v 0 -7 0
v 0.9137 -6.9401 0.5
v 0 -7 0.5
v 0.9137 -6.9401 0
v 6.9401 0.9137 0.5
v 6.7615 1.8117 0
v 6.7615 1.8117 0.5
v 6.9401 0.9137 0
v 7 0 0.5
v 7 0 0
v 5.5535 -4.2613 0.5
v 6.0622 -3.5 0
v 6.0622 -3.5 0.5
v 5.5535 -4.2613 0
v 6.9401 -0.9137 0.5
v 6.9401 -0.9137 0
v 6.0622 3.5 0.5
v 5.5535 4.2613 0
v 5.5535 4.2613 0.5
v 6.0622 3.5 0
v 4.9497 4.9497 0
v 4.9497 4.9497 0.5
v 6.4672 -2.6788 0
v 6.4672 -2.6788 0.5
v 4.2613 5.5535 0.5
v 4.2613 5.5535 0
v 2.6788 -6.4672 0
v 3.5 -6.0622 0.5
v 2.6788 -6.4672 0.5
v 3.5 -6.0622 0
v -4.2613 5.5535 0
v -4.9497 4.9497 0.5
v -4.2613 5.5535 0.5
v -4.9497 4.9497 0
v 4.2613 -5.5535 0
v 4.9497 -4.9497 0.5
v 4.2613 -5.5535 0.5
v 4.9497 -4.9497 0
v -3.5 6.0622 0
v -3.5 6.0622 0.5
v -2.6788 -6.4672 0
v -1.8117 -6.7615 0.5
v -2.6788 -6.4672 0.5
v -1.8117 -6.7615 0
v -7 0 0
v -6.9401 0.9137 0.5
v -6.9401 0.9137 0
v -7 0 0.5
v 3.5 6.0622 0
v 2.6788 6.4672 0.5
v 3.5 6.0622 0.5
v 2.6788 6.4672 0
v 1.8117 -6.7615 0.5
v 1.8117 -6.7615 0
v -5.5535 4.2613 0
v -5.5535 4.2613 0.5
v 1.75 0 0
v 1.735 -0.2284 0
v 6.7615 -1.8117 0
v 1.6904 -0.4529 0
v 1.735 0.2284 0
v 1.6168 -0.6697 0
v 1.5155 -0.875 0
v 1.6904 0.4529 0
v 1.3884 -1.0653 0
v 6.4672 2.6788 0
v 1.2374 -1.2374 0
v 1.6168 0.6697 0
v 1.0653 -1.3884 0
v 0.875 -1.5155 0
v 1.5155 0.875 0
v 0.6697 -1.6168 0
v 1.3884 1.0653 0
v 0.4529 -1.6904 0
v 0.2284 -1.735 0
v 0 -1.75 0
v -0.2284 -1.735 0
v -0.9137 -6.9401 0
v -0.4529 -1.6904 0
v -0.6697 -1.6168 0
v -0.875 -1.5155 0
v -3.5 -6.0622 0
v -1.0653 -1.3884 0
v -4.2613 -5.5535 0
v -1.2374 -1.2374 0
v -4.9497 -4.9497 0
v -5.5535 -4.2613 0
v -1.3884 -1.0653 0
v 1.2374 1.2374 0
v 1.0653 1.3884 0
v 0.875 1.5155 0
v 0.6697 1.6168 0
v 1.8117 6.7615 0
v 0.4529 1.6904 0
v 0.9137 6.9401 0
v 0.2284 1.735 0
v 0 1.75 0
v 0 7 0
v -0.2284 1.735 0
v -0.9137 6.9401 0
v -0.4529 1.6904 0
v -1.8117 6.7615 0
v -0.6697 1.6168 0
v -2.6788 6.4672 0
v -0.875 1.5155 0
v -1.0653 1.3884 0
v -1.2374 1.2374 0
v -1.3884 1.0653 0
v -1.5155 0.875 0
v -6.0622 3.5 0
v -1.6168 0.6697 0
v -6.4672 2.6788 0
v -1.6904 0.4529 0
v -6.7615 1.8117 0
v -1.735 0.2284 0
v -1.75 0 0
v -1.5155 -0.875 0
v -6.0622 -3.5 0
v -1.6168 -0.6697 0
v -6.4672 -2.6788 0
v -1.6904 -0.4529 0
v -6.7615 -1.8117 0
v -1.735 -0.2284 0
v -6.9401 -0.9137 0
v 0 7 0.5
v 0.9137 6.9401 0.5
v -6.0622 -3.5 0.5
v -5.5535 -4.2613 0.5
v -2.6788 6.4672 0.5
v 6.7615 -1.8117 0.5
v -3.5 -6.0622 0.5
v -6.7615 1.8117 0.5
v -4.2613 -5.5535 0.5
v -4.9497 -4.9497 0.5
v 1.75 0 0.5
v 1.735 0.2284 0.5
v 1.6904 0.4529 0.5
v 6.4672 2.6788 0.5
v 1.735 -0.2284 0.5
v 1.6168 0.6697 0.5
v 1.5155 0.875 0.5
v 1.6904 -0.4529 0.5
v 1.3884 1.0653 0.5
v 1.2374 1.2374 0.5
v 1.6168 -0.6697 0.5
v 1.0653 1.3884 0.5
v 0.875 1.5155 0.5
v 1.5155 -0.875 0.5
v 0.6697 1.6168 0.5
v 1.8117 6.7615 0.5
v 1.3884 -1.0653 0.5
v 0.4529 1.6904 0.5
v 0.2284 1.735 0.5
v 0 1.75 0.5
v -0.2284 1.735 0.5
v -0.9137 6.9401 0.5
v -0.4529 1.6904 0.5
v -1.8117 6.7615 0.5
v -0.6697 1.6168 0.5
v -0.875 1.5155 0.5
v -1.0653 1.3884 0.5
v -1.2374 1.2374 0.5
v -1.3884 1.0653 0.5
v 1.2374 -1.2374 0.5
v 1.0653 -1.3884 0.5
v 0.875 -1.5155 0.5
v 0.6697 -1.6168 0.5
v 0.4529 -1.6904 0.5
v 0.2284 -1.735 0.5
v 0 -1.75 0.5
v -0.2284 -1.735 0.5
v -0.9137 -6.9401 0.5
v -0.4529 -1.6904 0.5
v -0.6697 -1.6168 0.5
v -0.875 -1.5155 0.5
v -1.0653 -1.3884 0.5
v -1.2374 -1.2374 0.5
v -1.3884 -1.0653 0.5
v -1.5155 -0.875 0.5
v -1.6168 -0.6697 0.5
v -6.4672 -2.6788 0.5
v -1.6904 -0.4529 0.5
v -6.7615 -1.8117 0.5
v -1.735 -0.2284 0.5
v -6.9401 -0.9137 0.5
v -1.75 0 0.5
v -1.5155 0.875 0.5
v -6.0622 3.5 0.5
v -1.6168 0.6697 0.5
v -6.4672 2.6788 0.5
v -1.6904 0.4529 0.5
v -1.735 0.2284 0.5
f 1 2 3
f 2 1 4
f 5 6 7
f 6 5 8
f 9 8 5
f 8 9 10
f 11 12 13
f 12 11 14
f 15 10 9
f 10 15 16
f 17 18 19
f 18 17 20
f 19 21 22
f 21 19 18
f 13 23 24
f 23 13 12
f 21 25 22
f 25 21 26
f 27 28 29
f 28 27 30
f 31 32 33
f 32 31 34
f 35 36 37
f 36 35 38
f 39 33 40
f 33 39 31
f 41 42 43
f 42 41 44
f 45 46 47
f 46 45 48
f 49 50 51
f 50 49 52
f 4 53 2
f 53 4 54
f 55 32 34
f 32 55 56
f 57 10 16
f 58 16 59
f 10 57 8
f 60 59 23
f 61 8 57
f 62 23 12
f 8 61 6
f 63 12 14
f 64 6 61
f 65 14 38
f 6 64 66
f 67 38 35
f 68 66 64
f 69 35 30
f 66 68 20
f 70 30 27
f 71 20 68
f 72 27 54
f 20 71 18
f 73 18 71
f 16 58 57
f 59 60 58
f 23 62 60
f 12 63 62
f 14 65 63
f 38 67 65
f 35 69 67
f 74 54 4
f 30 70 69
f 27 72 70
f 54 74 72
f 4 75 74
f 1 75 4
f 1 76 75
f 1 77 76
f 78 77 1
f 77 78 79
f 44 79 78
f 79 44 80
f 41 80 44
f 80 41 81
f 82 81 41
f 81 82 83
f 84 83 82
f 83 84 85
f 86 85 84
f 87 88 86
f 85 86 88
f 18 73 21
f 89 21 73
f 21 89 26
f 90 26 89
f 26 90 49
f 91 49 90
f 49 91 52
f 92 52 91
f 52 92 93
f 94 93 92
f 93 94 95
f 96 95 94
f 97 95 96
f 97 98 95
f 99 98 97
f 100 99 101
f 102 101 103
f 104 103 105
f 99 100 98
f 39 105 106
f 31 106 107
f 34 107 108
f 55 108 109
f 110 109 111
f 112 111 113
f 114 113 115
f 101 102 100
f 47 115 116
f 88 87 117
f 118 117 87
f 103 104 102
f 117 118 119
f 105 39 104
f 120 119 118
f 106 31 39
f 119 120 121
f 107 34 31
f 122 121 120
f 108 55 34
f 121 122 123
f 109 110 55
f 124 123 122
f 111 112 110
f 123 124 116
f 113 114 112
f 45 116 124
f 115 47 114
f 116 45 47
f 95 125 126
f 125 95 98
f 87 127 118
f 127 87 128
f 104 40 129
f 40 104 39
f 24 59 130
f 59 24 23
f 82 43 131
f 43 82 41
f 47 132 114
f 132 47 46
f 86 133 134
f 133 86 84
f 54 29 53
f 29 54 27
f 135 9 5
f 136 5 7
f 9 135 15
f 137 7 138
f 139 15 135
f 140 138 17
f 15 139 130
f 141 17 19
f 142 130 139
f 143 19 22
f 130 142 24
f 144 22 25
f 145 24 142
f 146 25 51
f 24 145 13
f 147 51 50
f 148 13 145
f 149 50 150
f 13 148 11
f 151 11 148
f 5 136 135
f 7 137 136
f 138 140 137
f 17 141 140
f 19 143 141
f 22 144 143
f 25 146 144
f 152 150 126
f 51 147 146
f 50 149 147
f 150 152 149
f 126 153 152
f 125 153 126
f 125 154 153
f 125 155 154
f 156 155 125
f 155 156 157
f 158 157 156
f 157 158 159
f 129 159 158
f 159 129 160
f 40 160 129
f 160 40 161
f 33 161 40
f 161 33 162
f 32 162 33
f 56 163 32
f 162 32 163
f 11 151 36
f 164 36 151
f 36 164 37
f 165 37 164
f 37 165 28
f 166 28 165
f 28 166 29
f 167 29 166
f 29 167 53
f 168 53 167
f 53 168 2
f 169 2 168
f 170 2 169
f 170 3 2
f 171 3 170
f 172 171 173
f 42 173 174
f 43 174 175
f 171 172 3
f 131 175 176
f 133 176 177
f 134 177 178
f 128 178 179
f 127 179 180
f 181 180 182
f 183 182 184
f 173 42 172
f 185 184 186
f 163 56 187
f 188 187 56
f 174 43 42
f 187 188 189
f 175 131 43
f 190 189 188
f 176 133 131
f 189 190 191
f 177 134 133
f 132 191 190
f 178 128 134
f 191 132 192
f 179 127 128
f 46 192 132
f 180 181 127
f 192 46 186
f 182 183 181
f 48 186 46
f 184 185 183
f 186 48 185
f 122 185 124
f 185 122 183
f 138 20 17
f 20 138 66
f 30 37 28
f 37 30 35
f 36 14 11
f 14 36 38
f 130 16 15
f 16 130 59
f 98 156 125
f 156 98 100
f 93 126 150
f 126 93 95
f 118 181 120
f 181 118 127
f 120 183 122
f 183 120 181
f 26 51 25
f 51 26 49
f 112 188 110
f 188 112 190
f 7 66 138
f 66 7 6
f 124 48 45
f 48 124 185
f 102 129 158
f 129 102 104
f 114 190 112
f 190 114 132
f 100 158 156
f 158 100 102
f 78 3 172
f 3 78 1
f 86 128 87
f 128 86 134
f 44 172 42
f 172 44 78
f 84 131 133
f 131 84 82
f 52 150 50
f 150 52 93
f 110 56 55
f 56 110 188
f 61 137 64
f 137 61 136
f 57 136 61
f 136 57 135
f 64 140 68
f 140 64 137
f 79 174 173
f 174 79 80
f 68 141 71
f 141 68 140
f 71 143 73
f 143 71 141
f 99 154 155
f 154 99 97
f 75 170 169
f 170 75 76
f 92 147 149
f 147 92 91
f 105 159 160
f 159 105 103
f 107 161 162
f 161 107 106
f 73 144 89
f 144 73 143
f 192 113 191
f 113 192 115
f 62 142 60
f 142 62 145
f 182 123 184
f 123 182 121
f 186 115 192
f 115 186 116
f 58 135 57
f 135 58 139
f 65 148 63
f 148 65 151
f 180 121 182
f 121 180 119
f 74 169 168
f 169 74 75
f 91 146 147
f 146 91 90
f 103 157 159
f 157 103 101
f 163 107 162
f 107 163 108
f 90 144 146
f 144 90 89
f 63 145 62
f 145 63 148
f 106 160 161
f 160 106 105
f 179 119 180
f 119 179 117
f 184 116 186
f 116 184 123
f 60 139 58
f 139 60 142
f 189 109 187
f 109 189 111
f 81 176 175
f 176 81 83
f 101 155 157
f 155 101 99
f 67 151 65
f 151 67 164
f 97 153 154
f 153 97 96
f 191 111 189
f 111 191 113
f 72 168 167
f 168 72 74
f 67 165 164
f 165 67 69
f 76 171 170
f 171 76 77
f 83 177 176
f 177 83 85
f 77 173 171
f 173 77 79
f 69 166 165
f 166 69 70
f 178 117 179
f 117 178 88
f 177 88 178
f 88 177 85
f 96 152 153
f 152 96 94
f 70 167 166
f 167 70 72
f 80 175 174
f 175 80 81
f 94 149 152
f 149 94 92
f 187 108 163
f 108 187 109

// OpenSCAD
// Gen-DI — assembly gap shim, h = run_clear (rotor face -> flange); copper is inside the flanges
include <parameters.scad>;
$fn = 48;
difference() {
    cylinder(d=spacer_pad_od, h=gap_spacer_h);
    translate([0, 0, -0.1]) cylinder(d=spacer_pad_id, h=gap_spacer_h + 0.2);
}
